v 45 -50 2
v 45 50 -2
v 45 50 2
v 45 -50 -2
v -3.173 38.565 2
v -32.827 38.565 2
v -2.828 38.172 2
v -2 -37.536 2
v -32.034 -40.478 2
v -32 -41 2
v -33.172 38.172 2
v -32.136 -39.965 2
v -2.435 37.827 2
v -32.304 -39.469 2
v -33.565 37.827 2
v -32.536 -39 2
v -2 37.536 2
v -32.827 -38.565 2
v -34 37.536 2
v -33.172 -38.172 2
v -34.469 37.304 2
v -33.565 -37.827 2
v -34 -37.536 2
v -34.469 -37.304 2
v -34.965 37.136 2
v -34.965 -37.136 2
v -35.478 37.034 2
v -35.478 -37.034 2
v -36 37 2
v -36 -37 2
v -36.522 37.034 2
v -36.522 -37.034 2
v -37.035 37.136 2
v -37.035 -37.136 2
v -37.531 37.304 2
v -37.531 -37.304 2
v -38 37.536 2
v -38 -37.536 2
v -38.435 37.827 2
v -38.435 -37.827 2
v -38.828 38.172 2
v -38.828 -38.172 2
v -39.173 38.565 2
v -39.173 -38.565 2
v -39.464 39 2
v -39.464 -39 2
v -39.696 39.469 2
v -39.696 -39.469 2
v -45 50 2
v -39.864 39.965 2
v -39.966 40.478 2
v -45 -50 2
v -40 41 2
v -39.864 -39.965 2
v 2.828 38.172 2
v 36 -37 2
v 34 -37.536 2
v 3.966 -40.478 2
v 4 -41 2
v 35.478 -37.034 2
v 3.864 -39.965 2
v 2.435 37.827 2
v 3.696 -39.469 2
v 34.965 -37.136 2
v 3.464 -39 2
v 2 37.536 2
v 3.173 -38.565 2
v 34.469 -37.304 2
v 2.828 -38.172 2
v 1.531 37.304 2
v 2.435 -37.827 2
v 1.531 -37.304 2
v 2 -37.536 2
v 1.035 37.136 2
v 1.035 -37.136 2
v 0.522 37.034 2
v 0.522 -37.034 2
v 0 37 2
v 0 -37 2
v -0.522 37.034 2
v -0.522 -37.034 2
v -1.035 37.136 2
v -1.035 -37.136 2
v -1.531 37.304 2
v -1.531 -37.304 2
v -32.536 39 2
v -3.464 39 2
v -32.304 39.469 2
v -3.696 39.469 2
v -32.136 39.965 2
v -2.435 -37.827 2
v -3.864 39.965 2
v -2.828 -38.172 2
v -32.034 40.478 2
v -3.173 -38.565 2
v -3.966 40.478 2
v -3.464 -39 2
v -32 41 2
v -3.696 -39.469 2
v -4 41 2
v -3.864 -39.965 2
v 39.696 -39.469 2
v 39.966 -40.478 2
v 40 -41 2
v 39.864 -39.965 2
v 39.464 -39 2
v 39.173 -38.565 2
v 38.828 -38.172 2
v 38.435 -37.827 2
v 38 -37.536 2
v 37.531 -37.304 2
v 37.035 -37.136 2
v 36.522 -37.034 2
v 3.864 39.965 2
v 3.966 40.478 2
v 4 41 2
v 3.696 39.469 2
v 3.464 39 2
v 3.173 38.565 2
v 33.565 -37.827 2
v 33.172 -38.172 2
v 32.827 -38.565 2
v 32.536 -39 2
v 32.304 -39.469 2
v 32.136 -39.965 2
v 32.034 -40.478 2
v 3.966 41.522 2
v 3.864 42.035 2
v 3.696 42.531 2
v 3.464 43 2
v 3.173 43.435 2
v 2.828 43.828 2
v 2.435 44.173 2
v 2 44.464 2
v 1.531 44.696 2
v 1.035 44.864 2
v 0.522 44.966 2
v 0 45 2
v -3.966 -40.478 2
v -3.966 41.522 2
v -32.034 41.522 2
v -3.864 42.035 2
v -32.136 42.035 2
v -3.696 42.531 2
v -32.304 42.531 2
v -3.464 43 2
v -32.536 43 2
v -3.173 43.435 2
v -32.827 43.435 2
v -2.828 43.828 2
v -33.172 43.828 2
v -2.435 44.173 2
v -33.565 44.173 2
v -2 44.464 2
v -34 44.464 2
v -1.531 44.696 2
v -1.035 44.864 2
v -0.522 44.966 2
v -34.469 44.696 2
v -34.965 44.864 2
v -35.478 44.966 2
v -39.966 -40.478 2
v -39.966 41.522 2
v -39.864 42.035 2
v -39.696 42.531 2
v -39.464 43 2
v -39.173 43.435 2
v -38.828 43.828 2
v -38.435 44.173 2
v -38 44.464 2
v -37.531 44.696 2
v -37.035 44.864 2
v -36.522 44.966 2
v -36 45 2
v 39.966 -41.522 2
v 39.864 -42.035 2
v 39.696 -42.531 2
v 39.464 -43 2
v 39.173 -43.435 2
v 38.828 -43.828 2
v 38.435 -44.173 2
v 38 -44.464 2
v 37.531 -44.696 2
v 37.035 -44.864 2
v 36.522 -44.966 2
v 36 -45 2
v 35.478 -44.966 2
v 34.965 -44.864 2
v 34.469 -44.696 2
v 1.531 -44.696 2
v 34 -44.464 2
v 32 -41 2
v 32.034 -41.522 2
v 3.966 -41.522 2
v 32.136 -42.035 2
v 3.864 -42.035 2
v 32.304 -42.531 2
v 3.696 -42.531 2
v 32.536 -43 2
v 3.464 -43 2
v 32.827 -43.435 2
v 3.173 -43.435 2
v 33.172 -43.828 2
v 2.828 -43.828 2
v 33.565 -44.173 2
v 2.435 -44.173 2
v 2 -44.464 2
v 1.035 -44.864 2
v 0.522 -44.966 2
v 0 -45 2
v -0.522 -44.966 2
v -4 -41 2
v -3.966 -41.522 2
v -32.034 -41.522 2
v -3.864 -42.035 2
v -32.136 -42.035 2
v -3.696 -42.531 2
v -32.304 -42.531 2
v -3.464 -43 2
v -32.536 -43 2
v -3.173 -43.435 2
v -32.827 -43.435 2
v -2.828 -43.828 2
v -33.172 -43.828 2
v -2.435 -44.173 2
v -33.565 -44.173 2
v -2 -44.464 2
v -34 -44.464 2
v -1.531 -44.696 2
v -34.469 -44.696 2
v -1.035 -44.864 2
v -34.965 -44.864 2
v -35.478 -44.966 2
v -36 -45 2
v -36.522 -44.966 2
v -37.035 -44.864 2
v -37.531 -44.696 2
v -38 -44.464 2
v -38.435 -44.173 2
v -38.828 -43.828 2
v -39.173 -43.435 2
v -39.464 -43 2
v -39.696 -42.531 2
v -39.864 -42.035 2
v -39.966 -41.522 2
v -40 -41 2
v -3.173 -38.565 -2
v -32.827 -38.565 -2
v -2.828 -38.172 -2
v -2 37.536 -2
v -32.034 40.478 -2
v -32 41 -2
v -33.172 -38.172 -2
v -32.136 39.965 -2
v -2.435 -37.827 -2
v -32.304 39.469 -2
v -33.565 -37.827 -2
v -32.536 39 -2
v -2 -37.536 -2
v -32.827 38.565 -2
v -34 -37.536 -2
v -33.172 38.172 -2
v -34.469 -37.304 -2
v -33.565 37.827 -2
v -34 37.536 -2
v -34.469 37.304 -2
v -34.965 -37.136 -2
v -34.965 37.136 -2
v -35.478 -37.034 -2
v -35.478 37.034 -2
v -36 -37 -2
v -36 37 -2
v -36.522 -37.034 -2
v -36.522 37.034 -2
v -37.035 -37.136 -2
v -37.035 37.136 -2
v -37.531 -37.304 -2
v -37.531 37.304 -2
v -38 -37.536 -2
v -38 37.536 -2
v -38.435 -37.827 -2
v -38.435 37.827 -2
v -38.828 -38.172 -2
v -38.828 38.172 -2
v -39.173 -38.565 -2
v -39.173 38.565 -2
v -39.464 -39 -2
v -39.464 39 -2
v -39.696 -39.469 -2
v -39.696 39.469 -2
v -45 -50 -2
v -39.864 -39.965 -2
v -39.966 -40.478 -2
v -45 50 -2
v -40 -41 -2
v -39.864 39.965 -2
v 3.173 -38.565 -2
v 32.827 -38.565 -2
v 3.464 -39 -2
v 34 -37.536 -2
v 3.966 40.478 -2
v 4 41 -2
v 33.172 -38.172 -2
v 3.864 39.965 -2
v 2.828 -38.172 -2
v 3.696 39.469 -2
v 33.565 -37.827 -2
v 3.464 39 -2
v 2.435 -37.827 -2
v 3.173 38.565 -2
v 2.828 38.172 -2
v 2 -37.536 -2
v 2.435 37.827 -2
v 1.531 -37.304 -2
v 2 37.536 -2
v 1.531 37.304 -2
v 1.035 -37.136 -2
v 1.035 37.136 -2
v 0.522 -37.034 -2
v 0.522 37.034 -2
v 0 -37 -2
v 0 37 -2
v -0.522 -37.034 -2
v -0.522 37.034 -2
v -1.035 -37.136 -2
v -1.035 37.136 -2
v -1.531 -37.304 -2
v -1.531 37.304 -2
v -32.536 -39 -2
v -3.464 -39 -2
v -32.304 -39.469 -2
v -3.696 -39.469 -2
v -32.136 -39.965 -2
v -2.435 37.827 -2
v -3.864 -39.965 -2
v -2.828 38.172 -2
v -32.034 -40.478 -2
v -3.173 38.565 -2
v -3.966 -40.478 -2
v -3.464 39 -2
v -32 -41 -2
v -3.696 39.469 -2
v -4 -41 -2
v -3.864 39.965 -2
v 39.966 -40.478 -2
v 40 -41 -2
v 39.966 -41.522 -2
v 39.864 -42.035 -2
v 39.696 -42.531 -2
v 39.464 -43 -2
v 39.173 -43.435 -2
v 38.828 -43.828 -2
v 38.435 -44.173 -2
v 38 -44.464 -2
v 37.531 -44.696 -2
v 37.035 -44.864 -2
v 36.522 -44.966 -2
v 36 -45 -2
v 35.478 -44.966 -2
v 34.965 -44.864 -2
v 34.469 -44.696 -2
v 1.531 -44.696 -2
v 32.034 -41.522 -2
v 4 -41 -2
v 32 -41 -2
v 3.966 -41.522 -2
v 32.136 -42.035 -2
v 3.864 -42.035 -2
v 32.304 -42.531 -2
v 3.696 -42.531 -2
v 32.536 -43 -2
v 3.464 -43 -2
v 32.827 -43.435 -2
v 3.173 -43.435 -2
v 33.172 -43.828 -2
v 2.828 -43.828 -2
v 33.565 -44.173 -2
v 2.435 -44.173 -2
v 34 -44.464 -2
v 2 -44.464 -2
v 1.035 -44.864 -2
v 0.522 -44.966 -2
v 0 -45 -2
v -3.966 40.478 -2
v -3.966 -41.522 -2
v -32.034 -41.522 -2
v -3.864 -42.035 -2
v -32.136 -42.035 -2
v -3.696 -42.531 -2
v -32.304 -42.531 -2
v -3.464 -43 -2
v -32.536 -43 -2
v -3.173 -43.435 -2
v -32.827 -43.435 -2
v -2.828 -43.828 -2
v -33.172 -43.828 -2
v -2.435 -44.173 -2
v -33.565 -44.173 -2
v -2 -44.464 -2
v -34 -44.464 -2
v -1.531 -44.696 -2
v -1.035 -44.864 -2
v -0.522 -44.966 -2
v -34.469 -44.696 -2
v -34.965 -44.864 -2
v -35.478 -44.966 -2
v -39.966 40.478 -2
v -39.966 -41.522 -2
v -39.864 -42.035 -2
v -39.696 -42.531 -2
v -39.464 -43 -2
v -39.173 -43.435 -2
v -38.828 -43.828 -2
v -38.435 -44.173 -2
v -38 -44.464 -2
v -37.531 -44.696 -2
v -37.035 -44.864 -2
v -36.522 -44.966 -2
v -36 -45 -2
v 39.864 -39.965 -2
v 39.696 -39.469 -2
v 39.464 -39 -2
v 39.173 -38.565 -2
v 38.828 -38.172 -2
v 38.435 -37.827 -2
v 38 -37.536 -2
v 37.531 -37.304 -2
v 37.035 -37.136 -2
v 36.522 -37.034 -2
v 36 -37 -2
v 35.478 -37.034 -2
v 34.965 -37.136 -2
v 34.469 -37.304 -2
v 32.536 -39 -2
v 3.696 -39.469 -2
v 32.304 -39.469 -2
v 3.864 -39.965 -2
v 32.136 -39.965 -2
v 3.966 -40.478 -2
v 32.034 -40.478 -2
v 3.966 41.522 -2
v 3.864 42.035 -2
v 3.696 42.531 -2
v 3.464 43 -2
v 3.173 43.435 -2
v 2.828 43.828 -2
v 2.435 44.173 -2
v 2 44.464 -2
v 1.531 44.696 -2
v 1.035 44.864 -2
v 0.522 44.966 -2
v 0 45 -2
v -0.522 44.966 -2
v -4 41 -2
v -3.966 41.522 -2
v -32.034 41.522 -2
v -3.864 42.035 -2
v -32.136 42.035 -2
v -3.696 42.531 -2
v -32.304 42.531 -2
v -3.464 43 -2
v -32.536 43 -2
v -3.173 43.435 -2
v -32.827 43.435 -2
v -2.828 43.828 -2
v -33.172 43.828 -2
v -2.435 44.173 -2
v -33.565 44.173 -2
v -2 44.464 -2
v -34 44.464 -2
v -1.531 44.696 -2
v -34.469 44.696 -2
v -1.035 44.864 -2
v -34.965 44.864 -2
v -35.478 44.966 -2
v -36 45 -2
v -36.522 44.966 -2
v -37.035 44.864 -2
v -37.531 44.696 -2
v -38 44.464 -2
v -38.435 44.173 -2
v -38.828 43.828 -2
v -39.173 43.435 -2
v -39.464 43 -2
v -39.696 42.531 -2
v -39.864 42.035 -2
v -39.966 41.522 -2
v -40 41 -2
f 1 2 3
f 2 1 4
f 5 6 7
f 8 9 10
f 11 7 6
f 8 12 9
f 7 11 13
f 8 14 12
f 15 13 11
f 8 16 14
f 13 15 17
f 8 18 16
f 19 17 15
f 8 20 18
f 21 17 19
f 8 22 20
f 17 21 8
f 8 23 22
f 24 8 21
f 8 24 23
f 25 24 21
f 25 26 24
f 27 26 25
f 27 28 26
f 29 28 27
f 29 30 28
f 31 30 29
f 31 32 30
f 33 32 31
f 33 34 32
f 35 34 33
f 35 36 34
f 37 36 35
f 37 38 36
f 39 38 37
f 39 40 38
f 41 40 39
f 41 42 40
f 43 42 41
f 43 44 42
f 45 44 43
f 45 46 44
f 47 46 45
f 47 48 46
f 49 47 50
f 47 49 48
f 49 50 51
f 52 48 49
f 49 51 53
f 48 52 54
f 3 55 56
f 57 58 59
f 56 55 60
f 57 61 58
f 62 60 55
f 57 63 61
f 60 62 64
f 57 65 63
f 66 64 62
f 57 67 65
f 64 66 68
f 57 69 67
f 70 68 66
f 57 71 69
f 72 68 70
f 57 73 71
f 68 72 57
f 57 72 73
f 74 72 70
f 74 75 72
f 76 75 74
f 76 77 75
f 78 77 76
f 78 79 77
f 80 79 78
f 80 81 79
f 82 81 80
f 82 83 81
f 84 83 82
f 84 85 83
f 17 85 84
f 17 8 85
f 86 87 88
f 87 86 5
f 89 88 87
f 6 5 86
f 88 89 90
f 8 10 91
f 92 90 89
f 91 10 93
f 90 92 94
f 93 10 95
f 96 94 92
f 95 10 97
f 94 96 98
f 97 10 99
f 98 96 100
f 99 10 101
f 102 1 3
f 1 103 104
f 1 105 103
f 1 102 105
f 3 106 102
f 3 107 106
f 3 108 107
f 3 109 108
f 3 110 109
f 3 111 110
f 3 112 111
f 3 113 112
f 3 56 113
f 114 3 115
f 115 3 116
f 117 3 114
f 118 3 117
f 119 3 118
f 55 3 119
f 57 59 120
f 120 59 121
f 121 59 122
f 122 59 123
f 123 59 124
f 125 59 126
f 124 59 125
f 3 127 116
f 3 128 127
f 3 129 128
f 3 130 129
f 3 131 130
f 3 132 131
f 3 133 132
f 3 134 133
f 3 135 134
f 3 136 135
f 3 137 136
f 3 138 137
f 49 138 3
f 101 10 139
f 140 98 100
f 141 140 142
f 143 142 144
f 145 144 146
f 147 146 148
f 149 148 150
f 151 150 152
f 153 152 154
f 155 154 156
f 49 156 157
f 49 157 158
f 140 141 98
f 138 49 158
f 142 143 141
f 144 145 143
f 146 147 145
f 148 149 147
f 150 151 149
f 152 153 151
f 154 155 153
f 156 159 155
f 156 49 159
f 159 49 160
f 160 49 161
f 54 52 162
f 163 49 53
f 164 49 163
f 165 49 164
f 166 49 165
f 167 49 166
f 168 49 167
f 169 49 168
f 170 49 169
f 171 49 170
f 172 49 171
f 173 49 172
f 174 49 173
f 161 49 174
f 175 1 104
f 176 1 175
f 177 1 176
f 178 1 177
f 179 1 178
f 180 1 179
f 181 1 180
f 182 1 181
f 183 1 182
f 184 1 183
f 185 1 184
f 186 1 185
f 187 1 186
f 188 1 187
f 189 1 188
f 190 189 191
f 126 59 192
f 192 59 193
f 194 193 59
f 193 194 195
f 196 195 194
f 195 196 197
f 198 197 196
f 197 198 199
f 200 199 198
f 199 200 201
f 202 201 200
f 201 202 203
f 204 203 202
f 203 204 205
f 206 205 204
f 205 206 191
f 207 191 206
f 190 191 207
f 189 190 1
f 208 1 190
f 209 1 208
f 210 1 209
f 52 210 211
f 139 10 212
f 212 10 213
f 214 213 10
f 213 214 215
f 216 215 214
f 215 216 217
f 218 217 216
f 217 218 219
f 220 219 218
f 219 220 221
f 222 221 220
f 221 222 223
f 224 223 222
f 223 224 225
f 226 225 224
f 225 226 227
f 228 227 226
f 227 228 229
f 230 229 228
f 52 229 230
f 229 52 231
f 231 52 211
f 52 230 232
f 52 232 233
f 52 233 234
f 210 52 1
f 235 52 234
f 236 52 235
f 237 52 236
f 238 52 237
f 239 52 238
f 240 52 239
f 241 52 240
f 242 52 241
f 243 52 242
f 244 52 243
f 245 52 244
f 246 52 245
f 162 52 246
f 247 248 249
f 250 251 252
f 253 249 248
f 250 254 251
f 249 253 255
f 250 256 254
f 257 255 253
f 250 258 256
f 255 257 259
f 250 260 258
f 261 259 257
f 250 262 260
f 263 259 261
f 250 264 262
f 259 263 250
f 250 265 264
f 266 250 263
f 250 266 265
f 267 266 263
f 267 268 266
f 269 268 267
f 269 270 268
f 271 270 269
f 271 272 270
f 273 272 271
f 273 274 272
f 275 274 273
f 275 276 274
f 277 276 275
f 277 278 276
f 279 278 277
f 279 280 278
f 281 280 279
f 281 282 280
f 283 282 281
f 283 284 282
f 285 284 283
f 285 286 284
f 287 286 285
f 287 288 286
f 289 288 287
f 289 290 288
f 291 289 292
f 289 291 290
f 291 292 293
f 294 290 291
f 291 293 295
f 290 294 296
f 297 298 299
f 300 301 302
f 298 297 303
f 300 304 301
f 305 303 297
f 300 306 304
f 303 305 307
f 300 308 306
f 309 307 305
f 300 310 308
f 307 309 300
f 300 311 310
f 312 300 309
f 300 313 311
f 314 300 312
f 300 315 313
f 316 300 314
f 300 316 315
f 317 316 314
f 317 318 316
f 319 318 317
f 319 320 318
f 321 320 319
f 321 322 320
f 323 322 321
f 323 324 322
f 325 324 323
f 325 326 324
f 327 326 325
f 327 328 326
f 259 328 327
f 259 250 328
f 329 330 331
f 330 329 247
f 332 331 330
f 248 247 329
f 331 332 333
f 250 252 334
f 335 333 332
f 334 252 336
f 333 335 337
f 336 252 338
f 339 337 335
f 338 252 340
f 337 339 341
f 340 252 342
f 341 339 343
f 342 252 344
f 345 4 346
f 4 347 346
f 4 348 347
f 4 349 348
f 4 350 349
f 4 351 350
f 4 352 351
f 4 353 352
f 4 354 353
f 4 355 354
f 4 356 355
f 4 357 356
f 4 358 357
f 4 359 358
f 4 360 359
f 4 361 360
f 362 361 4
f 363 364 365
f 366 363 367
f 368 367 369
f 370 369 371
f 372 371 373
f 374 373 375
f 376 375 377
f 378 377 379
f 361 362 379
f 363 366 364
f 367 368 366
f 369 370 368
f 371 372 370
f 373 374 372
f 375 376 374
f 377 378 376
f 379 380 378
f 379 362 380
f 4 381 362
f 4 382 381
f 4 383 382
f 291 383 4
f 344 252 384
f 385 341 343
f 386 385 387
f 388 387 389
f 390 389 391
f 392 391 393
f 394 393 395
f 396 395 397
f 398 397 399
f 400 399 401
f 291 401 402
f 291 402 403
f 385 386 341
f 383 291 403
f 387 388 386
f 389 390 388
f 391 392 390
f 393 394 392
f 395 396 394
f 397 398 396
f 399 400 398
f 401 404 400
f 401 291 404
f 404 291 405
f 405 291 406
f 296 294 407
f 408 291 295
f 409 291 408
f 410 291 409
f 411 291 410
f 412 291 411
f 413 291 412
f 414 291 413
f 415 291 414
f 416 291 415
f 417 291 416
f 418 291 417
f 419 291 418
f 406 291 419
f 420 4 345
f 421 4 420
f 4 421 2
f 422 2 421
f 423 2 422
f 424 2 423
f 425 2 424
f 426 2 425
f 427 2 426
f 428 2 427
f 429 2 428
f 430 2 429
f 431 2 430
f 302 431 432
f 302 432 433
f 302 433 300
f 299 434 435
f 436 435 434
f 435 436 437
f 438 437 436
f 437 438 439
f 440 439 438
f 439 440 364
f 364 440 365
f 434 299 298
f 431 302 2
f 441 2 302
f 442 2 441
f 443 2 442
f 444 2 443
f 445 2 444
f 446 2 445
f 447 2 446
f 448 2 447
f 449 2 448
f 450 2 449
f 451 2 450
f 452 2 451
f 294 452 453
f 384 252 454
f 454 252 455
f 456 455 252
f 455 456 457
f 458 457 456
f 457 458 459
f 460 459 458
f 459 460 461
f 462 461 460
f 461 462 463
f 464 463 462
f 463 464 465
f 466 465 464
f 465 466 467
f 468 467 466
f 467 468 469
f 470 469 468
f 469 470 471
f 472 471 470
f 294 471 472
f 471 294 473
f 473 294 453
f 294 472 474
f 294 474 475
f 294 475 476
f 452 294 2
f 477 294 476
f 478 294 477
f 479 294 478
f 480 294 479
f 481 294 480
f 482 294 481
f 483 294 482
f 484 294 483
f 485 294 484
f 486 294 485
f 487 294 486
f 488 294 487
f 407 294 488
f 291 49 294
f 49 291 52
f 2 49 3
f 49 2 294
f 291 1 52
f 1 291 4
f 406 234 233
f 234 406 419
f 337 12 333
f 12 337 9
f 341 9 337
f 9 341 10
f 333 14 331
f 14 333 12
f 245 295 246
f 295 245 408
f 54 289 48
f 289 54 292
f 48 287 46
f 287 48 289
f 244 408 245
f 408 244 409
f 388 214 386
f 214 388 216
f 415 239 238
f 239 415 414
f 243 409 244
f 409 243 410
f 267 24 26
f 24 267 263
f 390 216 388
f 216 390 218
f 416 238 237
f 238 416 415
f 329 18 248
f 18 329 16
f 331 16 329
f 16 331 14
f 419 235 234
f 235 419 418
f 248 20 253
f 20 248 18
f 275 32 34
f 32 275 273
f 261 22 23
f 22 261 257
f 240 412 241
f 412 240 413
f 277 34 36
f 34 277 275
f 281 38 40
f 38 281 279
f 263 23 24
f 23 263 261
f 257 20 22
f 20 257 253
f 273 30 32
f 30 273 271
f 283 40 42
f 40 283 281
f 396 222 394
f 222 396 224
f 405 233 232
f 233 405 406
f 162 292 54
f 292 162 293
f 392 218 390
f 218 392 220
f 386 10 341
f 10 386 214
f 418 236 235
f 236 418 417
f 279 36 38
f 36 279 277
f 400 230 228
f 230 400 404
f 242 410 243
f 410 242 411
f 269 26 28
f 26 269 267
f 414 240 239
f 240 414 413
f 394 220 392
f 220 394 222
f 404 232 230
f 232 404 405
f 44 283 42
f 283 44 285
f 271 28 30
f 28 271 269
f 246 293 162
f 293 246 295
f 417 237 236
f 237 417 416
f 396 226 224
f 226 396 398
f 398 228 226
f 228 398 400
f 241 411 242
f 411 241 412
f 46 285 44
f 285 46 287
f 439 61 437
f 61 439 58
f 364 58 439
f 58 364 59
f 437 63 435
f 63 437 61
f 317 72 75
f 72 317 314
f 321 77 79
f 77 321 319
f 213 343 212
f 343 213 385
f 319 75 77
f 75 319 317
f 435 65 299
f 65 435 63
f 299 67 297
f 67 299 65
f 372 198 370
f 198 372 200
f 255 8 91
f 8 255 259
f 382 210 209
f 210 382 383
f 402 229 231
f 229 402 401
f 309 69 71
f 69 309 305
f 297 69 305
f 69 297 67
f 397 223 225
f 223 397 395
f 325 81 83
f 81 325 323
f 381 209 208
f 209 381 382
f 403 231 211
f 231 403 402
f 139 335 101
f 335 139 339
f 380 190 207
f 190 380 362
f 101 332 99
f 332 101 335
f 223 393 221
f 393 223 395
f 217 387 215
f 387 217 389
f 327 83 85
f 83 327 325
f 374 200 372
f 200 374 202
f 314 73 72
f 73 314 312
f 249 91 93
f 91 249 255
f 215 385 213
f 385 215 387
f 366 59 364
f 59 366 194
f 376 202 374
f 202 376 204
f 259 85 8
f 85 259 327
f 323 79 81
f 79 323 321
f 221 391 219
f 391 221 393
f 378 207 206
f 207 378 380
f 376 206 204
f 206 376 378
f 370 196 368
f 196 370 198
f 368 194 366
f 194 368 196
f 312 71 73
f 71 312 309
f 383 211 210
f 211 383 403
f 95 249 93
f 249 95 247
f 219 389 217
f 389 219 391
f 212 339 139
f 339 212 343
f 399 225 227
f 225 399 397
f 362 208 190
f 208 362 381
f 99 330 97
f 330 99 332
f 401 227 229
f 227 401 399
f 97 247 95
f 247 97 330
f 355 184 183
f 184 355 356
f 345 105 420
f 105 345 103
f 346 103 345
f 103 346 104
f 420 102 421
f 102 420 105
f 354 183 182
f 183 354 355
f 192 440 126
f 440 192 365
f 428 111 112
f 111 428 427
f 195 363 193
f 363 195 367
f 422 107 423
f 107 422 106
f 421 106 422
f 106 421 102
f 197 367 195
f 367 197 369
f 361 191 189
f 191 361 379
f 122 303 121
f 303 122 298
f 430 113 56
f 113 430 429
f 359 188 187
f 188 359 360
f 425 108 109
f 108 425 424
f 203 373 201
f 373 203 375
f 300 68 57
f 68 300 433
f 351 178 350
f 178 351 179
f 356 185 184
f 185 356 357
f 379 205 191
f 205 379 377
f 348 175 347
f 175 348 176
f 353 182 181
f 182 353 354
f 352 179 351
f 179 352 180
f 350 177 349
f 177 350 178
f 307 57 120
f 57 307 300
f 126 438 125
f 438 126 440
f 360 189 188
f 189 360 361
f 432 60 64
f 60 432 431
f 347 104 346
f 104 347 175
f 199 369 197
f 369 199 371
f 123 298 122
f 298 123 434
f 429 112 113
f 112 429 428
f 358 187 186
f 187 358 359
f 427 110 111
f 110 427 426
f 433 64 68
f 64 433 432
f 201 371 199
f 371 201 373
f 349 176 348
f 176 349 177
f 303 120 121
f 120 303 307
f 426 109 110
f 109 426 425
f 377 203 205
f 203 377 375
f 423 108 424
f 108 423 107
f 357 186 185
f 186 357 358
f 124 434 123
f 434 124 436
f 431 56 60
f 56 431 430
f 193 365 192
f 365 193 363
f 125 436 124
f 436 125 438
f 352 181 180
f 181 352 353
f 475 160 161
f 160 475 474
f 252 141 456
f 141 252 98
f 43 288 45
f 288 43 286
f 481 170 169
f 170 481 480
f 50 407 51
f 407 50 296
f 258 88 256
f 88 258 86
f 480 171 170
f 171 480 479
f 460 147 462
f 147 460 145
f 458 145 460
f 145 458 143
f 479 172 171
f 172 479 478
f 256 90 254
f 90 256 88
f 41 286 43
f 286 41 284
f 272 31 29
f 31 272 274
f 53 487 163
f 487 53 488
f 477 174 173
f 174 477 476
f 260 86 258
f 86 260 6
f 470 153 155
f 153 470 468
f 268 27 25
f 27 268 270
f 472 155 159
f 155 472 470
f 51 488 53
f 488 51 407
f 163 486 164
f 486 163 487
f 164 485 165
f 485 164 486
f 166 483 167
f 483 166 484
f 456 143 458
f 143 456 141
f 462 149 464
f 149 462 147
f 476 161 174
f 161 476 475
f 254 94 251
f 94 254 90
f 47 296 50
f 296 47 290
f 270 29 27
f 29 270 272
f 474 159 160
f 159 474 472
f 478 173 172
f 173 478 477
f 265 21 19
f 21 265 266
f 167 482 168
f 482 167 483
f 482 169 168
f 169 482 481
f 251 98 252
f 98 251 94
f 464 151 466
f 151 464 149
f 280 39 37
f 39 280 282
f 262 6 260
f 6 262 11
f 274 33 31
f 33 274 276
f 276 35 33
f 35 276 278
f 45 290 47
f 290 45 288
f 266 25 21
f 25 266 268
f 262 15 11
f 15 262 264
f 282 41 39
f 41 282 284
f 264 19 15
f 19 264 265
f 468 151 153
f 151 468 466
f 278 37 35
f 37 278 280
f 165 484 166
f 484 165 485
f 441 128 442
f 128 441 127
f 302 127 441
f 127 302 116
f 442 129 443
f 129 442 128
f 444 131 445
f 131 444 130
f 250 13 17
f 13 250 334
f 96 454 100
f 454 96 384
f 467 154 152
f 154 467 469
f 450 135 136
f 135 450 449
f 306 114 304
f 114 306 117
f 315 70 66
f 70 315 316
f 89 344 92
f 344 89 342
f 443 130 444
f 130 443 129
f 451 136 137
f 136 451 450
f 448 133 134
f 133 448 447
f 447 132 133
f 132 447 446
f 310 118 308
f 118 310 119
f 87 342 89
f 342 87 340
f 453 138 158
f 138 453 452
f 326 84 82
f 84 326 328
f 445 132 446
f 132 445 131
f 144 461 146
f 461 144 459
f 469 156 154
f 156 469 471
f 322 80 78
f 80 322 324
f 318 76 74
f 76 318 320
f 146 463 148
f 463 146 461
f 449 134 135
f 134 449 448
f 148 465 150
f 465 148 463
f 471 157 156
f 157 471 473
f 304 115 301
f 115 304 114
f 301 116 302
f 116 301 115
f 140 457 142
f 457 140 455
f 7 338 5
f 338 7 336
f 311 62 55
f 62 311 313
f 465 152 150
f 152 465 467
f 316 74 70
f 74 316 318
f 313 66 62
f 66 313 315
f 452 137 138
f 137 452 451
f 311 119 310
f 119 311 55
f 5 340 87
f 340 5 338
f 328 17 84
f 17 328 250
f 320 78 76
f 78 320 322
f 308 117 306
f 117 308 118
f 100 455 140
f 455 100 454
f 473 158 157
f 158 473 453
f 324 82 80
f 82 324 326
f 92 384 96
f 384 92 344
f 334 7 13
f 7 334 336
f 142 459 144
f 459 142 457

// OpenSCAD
// ========================================
// a 90 x 100 x 4 mm plate with five 8 mm holes
// NeuroCAD canonical IR; dimensions are millimetres
// ========================================
$fn = 48;

difference() {
  cube(size=[90, 100, 4], center=true);
  translate([-36, -41, 0]) {
    cylinder(r=4, h=6, center=true);
  }
  translate([0, -41, 0]) {
    cylinder(r=4, h=6, center=true);
  }
  translate([36, -41, 0]) {
    cylinder(r=4, h=6, center=true);
  }
  translate([-36, 41, 0]) {
    cylinder(r=4, h=6, center=true);
  }
  translate([0, 41, 0]) {
    cylinder(r=4, h=6, center=true);
  }
}
